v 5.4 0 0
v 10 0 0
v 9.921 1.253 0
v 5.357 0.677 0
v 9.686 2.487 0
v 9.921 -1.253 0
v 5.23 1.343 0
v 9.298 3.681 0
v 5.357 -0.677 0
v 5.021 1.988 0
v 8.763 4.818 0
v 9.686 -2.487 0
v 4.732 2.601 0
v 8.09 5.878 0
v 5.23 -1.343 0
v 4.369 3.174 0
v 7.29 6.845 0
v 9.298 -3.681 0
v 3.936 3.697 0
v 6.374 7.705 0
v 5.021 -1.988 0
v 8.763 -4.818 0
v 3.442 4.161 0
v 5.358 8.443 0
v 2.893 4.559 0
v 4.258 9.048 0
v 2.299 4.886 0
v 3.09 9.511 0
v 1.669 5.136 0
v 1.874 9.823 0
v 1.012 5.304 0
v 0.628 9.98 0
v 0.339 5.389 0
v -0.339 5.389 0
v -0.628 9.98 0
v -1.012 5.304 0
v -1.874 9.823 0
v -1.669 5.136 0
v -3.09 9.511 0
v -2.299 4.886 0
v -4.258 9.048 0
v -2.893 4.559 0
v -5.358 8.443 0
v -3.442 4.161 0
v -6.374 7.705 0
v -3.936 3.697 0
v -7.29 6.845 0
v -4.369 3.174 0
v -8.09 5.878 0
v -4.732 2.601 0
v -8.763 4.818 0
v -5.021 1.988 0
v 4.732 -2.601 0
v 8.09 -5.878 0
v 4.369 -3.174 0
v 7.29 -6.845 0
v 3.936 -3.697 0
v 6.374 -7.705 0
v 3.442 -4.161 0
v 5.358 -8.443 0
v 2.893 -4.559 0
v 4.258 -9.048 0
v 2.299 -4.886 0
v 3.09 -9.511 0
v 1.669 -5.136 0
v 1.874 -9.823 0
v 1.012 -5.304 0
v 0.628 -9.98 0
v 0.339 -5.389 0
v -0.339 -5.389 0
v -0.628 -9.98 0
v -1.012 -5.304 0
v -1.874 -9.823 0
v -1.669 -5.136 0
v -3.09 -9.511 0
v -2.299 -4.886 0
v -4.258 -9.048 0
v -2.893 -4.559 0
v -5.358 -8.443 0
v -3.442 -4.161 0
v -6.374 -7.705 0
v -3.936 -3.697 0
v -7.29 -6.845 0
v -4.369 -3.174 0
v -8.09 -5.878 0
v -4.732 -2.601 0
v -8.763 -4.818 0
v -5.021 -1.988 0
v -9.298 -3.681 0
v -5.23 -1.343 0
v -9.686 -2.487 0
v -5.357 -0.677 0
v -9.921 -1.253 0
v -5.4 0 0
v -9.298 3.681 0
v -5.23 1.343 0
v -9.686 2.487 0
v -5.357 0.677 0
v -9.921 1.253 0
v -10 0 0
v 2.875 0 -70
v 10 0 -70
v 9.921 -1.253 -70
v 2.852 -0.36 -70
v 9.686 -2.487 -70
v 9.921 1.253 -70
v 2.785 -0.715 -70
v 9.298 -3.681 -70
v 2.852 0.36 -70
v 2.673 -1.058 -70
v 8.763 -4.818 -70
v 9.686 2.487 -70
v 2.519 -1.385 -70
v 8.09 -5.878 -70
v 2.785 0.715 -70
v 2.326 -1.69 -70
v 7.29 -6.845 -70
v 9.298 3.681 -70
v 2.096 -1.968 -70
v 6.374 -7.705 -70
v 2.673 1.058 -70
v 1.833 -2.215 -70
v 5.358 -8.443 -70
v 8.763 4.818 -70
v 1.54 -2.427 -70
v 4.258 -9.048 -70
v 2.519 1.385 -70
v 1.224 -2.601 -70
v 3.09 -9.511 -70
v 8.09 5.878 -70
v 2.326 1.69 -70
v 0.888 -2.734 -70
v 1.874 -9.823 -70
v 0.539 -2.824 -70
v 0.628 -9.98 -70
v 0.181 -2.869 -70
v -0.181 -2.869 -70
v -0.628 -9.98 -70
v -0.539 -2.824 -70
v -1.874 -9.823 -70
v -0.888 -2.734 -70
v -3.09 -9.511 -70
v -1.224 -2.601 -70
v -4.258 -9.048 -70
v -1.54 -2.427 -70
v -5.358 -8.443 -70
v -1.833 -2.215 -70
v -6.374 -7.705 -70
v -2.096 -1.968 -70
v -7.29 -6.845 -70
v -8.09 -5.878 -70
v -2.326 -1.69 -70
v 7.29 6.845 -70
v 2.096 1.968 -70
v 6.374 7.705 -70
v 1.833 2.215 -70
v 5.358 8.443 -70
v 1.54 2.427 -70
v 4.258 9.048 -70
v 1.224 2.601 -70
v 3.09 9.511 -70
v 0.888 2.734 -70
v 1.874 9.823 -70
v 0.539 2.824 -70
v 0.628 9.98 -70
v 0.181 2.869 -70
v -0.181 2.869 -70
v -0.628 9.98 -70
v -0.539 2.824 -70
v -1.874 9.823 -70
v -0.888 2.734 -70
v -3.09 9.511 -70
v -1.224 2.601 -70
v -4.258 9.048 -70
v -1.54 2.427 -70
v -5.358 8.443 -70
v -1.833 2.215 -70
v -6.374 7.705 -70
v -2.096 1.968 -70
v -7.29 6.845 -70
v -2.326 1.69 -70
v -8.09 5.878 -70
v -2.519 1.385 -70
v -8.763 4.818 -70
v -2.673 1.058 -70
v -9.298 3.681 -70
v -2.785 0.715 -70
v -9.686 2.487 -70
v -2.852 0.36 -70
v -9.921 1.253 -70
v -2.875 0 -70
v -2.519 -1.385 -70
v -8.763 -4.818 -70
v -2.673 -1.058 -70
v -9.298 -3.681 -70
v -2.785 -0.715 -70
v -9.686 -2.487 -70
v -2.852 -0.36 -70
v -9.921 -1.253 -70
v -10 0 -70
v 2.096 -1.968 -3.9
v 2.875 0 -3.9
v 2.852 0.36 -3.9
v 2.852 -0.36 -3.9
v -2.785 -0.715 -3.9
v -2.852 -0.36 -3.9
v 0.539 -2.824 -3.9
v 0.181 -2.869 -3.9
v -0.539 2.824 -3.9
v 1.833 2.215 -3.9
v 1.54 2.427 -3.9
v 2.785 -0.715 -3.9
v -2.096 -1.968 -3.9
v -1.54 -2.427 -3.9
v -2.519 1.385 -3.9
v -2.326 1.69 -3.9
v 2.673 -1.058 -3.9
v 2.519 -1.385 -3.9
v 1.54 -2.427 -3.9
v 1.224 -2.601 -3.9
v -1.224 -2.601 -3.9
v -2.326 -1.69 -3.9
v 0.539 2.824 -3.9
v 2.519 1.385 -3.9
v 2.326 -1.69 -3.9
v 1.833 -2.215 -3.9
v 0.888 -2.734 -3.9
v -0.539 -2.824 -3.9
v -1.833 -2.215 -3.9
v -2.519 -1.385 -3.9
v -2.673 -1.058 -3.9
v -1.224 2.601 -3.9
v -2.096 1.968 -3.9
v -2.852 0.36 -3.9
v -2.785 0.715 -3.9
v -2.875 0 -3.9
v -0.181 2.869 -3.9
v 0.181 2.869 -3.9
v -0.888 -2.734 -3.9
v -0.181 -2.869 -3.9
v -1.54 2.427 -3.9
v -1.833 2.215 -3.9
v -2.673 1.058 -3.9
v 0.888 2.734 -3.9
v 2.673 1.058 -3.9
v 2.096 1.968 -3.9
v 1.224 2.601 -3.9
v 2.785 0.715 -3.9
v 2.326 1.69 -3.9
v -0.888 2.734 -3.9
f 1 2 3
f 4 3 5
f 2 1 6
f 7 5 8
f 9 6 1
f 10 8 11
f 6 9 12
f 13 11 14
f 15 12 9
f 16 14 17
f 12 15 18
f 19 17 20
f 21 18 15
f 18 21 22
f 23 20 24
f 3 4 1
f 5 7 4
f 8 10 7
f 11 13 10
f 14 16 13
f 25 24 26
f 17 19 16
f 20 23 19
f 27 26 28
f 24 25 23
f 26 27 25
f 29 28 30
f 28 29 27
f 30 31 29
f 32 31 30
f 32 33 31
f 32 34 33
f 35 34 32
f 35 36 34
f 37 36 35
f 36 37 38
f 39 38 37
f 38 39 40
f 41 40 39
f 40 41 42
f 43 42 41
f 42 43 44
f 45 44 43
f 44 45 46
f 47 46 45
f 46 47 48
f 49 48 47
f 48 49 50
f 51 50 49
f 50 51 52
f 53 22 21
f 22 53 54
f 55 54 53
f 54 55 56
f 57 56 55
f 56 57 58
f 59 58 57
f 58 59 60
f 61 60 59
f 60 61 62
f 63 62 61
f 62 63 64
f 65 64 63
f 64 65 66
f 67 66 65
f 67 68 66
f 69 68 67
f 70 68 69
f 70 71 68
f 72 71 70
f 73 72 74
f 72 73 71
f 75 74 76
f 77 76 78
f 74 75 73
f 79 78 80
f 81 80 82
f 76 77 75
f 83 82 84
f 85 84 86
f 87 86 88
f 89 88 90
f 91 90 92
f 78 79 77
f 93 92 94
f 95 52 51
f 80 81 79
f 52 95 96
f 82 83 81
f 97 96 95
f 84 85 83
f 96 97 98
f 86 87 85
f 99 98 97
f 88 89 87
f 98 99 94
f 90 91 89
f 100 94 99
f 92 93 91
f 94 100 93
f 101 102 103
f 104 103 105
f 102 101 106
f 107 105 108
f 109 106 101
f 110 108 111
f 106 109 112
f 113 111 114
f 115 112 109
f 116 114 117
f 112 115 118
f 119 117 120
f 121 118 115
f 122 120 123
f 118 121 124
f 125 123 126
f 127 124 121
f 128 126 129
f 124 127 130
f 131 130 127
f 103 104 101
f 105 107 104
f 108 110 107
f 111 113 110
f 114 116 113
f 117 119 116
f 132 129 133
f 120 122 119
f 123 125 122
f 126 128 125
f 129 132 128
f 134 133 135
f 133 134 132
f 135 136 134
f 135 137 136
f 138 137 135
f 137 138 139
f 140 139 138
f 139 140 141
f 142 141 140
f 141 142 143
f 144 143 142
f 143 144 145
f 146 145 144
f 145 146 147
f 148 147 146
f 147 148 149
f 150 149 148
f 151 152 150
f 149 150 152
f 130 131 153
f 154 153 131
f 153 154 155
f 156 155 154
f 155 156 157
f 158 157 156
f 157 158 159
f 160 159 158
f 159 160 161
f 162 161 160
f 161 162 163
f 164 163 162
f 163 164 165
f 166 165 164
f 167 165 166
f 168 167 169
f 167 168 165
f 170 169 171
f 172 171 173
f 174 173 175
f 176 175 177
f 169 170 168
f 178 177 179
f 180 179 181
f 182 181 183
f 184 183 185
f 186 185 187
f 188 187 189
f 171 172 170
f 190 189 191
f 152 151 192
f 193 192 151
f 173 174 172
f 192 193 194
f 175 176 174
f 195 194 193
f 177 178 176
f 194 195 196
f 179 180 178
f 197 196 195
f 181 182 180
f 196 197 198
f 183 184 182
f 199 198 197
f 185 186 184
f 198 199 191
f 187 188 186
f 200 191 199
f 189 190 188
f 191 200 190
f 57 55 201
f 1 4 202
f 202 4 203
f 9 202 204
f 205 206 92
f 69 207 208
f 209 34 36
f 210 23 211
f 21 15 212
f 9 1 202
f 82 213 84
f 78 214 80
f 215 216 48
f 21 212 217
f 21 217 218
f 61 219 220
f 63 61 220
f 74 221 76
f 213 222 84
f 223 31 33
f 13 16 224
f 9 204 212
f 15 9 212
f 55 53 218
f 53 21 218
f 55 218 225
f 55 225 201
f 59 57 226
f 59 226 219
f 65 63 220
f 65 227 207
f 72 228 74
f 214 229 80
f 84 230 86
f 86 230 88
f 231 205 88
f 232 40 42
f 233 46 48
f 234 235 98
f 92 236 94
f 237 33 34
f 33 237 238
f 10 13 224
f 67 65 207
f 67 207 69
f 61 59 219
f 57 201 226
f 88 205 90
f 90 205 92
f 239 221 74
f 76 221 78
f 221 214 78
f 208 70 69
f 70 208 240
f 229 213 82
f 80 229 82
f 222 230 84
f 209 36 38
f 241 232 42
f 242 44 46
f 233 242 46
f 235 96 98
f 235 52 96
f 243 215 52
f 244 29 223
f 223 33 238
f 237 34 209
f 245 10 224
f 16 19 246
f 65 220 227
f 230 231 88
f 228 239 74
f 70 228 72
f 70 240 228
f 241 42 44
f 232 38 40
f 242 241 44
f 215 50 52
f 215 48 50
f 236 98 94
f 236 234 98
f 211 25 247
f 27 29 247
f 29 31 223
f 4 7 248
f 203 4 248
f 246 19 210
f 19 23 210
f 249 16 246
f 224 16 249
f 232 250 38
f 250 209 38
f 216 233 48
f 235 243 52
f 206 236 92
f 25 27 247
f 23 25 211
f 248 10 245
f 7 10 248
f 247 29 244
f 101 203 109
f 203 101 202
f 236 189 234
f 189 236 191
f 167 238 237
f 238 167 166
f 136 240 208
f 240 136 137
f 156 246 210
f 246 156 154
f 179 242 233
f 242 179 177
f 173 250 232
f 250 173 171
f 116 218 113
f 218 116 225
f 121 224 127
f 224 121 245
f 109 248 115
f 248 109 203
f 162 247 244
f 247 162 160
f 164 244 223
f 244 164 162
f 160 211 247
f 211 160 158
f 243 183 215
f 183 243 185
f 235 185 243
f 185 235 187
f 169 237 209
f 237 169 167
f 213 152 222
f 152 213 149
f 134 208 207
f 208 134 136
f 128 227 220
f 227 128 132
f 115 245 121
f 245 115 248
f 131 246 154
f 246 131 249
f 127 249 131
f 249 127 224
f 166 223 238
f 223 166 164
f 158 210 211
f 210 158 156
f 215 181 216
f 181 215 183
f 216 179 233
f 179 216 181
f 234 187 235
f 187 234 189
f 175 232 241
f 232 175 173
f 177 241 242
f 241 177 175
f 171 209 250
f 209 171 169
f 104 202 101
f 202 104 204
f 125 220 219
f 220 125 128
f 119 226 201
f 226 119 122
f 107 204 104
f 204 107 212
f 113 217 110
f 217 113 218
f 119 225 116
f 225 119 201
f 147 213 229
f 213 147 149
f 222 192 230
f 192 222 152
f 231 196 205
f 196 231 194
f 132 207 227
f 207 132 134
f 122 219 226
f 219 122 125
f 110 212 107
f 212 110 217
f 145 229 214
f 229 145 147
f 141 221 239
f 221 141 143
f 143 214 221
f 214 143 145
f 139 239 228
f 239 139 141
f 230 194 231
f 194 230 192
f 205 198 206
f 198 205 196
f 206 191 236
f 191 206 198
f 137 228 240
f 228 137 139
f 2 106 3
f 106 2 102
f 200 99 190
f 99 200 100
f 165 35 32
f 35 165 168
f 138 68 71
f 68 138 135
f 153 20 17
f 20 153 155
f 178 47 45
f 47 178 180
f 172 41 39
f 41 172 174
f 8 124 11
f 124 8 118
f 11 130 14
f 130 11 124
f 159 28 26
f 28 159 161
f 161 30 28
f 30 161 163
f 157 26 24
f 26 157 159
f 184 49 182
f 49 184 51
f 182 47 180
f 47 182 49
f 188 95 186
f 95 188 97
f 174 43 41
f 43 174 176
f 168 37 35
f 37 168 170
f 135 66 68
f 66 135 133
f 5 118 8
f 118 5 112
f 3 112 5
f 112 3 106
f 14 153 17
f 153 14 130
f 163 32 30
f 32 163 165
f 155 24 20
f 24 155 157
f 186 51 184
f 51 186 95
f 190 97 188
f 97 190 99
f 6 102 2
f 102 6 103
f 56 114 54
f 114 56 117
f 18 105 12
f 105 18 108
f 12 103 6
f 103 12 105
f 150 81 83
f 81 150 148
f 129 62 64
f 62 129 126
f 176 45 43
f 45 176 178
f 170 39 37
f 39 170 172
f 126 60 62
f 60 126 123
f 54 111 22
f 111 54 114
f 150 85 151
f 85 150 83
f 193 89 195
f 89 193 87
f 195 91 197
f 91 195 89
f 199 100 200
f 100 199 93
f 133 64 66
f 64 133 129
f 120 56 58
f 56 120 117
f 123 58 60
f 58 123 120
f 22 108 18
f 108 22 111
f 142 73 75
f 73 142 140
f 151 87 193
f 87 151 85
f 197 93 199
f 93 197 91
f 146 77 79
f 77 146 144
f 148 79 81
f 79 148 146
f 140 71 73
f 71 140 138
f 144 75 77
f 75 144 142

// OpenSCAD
$fn = 50;


difference() {
	union() {
		translate(v = [0, 0, -70.0000000000]) {
			cylinder(h = 70, r = 10.0000000000);
		}
		cylinder(h = 0, r = 16.0000000000);
	}
	union() {
		translate(v = [0, 0, 0]) {
			rotate(a = [0, 0, 0]) {
				difference() {
					union() {
						#translate(v = [0, 0, -70.0000000000]) {
							cylinder(h = 70, r = 2.6000000000);
						}
						#translate(v = [0, 0, -3.9000000000]) {
							cylinder(h = 3.9000000000, r1 = 2.8750000000, r2 = 5.4000000000);
						}
						#translate(v = [0, 0, -70.0000000000]) {
							cylinder(h = 70, r = 2.8750000000);
						}
						#translate(v = [0, 0, -70.0000000000]) {
							cylinder(h = 70, r = 2.6000000000);
						}
					}
					union();
				}
			}
		}
	}
}
